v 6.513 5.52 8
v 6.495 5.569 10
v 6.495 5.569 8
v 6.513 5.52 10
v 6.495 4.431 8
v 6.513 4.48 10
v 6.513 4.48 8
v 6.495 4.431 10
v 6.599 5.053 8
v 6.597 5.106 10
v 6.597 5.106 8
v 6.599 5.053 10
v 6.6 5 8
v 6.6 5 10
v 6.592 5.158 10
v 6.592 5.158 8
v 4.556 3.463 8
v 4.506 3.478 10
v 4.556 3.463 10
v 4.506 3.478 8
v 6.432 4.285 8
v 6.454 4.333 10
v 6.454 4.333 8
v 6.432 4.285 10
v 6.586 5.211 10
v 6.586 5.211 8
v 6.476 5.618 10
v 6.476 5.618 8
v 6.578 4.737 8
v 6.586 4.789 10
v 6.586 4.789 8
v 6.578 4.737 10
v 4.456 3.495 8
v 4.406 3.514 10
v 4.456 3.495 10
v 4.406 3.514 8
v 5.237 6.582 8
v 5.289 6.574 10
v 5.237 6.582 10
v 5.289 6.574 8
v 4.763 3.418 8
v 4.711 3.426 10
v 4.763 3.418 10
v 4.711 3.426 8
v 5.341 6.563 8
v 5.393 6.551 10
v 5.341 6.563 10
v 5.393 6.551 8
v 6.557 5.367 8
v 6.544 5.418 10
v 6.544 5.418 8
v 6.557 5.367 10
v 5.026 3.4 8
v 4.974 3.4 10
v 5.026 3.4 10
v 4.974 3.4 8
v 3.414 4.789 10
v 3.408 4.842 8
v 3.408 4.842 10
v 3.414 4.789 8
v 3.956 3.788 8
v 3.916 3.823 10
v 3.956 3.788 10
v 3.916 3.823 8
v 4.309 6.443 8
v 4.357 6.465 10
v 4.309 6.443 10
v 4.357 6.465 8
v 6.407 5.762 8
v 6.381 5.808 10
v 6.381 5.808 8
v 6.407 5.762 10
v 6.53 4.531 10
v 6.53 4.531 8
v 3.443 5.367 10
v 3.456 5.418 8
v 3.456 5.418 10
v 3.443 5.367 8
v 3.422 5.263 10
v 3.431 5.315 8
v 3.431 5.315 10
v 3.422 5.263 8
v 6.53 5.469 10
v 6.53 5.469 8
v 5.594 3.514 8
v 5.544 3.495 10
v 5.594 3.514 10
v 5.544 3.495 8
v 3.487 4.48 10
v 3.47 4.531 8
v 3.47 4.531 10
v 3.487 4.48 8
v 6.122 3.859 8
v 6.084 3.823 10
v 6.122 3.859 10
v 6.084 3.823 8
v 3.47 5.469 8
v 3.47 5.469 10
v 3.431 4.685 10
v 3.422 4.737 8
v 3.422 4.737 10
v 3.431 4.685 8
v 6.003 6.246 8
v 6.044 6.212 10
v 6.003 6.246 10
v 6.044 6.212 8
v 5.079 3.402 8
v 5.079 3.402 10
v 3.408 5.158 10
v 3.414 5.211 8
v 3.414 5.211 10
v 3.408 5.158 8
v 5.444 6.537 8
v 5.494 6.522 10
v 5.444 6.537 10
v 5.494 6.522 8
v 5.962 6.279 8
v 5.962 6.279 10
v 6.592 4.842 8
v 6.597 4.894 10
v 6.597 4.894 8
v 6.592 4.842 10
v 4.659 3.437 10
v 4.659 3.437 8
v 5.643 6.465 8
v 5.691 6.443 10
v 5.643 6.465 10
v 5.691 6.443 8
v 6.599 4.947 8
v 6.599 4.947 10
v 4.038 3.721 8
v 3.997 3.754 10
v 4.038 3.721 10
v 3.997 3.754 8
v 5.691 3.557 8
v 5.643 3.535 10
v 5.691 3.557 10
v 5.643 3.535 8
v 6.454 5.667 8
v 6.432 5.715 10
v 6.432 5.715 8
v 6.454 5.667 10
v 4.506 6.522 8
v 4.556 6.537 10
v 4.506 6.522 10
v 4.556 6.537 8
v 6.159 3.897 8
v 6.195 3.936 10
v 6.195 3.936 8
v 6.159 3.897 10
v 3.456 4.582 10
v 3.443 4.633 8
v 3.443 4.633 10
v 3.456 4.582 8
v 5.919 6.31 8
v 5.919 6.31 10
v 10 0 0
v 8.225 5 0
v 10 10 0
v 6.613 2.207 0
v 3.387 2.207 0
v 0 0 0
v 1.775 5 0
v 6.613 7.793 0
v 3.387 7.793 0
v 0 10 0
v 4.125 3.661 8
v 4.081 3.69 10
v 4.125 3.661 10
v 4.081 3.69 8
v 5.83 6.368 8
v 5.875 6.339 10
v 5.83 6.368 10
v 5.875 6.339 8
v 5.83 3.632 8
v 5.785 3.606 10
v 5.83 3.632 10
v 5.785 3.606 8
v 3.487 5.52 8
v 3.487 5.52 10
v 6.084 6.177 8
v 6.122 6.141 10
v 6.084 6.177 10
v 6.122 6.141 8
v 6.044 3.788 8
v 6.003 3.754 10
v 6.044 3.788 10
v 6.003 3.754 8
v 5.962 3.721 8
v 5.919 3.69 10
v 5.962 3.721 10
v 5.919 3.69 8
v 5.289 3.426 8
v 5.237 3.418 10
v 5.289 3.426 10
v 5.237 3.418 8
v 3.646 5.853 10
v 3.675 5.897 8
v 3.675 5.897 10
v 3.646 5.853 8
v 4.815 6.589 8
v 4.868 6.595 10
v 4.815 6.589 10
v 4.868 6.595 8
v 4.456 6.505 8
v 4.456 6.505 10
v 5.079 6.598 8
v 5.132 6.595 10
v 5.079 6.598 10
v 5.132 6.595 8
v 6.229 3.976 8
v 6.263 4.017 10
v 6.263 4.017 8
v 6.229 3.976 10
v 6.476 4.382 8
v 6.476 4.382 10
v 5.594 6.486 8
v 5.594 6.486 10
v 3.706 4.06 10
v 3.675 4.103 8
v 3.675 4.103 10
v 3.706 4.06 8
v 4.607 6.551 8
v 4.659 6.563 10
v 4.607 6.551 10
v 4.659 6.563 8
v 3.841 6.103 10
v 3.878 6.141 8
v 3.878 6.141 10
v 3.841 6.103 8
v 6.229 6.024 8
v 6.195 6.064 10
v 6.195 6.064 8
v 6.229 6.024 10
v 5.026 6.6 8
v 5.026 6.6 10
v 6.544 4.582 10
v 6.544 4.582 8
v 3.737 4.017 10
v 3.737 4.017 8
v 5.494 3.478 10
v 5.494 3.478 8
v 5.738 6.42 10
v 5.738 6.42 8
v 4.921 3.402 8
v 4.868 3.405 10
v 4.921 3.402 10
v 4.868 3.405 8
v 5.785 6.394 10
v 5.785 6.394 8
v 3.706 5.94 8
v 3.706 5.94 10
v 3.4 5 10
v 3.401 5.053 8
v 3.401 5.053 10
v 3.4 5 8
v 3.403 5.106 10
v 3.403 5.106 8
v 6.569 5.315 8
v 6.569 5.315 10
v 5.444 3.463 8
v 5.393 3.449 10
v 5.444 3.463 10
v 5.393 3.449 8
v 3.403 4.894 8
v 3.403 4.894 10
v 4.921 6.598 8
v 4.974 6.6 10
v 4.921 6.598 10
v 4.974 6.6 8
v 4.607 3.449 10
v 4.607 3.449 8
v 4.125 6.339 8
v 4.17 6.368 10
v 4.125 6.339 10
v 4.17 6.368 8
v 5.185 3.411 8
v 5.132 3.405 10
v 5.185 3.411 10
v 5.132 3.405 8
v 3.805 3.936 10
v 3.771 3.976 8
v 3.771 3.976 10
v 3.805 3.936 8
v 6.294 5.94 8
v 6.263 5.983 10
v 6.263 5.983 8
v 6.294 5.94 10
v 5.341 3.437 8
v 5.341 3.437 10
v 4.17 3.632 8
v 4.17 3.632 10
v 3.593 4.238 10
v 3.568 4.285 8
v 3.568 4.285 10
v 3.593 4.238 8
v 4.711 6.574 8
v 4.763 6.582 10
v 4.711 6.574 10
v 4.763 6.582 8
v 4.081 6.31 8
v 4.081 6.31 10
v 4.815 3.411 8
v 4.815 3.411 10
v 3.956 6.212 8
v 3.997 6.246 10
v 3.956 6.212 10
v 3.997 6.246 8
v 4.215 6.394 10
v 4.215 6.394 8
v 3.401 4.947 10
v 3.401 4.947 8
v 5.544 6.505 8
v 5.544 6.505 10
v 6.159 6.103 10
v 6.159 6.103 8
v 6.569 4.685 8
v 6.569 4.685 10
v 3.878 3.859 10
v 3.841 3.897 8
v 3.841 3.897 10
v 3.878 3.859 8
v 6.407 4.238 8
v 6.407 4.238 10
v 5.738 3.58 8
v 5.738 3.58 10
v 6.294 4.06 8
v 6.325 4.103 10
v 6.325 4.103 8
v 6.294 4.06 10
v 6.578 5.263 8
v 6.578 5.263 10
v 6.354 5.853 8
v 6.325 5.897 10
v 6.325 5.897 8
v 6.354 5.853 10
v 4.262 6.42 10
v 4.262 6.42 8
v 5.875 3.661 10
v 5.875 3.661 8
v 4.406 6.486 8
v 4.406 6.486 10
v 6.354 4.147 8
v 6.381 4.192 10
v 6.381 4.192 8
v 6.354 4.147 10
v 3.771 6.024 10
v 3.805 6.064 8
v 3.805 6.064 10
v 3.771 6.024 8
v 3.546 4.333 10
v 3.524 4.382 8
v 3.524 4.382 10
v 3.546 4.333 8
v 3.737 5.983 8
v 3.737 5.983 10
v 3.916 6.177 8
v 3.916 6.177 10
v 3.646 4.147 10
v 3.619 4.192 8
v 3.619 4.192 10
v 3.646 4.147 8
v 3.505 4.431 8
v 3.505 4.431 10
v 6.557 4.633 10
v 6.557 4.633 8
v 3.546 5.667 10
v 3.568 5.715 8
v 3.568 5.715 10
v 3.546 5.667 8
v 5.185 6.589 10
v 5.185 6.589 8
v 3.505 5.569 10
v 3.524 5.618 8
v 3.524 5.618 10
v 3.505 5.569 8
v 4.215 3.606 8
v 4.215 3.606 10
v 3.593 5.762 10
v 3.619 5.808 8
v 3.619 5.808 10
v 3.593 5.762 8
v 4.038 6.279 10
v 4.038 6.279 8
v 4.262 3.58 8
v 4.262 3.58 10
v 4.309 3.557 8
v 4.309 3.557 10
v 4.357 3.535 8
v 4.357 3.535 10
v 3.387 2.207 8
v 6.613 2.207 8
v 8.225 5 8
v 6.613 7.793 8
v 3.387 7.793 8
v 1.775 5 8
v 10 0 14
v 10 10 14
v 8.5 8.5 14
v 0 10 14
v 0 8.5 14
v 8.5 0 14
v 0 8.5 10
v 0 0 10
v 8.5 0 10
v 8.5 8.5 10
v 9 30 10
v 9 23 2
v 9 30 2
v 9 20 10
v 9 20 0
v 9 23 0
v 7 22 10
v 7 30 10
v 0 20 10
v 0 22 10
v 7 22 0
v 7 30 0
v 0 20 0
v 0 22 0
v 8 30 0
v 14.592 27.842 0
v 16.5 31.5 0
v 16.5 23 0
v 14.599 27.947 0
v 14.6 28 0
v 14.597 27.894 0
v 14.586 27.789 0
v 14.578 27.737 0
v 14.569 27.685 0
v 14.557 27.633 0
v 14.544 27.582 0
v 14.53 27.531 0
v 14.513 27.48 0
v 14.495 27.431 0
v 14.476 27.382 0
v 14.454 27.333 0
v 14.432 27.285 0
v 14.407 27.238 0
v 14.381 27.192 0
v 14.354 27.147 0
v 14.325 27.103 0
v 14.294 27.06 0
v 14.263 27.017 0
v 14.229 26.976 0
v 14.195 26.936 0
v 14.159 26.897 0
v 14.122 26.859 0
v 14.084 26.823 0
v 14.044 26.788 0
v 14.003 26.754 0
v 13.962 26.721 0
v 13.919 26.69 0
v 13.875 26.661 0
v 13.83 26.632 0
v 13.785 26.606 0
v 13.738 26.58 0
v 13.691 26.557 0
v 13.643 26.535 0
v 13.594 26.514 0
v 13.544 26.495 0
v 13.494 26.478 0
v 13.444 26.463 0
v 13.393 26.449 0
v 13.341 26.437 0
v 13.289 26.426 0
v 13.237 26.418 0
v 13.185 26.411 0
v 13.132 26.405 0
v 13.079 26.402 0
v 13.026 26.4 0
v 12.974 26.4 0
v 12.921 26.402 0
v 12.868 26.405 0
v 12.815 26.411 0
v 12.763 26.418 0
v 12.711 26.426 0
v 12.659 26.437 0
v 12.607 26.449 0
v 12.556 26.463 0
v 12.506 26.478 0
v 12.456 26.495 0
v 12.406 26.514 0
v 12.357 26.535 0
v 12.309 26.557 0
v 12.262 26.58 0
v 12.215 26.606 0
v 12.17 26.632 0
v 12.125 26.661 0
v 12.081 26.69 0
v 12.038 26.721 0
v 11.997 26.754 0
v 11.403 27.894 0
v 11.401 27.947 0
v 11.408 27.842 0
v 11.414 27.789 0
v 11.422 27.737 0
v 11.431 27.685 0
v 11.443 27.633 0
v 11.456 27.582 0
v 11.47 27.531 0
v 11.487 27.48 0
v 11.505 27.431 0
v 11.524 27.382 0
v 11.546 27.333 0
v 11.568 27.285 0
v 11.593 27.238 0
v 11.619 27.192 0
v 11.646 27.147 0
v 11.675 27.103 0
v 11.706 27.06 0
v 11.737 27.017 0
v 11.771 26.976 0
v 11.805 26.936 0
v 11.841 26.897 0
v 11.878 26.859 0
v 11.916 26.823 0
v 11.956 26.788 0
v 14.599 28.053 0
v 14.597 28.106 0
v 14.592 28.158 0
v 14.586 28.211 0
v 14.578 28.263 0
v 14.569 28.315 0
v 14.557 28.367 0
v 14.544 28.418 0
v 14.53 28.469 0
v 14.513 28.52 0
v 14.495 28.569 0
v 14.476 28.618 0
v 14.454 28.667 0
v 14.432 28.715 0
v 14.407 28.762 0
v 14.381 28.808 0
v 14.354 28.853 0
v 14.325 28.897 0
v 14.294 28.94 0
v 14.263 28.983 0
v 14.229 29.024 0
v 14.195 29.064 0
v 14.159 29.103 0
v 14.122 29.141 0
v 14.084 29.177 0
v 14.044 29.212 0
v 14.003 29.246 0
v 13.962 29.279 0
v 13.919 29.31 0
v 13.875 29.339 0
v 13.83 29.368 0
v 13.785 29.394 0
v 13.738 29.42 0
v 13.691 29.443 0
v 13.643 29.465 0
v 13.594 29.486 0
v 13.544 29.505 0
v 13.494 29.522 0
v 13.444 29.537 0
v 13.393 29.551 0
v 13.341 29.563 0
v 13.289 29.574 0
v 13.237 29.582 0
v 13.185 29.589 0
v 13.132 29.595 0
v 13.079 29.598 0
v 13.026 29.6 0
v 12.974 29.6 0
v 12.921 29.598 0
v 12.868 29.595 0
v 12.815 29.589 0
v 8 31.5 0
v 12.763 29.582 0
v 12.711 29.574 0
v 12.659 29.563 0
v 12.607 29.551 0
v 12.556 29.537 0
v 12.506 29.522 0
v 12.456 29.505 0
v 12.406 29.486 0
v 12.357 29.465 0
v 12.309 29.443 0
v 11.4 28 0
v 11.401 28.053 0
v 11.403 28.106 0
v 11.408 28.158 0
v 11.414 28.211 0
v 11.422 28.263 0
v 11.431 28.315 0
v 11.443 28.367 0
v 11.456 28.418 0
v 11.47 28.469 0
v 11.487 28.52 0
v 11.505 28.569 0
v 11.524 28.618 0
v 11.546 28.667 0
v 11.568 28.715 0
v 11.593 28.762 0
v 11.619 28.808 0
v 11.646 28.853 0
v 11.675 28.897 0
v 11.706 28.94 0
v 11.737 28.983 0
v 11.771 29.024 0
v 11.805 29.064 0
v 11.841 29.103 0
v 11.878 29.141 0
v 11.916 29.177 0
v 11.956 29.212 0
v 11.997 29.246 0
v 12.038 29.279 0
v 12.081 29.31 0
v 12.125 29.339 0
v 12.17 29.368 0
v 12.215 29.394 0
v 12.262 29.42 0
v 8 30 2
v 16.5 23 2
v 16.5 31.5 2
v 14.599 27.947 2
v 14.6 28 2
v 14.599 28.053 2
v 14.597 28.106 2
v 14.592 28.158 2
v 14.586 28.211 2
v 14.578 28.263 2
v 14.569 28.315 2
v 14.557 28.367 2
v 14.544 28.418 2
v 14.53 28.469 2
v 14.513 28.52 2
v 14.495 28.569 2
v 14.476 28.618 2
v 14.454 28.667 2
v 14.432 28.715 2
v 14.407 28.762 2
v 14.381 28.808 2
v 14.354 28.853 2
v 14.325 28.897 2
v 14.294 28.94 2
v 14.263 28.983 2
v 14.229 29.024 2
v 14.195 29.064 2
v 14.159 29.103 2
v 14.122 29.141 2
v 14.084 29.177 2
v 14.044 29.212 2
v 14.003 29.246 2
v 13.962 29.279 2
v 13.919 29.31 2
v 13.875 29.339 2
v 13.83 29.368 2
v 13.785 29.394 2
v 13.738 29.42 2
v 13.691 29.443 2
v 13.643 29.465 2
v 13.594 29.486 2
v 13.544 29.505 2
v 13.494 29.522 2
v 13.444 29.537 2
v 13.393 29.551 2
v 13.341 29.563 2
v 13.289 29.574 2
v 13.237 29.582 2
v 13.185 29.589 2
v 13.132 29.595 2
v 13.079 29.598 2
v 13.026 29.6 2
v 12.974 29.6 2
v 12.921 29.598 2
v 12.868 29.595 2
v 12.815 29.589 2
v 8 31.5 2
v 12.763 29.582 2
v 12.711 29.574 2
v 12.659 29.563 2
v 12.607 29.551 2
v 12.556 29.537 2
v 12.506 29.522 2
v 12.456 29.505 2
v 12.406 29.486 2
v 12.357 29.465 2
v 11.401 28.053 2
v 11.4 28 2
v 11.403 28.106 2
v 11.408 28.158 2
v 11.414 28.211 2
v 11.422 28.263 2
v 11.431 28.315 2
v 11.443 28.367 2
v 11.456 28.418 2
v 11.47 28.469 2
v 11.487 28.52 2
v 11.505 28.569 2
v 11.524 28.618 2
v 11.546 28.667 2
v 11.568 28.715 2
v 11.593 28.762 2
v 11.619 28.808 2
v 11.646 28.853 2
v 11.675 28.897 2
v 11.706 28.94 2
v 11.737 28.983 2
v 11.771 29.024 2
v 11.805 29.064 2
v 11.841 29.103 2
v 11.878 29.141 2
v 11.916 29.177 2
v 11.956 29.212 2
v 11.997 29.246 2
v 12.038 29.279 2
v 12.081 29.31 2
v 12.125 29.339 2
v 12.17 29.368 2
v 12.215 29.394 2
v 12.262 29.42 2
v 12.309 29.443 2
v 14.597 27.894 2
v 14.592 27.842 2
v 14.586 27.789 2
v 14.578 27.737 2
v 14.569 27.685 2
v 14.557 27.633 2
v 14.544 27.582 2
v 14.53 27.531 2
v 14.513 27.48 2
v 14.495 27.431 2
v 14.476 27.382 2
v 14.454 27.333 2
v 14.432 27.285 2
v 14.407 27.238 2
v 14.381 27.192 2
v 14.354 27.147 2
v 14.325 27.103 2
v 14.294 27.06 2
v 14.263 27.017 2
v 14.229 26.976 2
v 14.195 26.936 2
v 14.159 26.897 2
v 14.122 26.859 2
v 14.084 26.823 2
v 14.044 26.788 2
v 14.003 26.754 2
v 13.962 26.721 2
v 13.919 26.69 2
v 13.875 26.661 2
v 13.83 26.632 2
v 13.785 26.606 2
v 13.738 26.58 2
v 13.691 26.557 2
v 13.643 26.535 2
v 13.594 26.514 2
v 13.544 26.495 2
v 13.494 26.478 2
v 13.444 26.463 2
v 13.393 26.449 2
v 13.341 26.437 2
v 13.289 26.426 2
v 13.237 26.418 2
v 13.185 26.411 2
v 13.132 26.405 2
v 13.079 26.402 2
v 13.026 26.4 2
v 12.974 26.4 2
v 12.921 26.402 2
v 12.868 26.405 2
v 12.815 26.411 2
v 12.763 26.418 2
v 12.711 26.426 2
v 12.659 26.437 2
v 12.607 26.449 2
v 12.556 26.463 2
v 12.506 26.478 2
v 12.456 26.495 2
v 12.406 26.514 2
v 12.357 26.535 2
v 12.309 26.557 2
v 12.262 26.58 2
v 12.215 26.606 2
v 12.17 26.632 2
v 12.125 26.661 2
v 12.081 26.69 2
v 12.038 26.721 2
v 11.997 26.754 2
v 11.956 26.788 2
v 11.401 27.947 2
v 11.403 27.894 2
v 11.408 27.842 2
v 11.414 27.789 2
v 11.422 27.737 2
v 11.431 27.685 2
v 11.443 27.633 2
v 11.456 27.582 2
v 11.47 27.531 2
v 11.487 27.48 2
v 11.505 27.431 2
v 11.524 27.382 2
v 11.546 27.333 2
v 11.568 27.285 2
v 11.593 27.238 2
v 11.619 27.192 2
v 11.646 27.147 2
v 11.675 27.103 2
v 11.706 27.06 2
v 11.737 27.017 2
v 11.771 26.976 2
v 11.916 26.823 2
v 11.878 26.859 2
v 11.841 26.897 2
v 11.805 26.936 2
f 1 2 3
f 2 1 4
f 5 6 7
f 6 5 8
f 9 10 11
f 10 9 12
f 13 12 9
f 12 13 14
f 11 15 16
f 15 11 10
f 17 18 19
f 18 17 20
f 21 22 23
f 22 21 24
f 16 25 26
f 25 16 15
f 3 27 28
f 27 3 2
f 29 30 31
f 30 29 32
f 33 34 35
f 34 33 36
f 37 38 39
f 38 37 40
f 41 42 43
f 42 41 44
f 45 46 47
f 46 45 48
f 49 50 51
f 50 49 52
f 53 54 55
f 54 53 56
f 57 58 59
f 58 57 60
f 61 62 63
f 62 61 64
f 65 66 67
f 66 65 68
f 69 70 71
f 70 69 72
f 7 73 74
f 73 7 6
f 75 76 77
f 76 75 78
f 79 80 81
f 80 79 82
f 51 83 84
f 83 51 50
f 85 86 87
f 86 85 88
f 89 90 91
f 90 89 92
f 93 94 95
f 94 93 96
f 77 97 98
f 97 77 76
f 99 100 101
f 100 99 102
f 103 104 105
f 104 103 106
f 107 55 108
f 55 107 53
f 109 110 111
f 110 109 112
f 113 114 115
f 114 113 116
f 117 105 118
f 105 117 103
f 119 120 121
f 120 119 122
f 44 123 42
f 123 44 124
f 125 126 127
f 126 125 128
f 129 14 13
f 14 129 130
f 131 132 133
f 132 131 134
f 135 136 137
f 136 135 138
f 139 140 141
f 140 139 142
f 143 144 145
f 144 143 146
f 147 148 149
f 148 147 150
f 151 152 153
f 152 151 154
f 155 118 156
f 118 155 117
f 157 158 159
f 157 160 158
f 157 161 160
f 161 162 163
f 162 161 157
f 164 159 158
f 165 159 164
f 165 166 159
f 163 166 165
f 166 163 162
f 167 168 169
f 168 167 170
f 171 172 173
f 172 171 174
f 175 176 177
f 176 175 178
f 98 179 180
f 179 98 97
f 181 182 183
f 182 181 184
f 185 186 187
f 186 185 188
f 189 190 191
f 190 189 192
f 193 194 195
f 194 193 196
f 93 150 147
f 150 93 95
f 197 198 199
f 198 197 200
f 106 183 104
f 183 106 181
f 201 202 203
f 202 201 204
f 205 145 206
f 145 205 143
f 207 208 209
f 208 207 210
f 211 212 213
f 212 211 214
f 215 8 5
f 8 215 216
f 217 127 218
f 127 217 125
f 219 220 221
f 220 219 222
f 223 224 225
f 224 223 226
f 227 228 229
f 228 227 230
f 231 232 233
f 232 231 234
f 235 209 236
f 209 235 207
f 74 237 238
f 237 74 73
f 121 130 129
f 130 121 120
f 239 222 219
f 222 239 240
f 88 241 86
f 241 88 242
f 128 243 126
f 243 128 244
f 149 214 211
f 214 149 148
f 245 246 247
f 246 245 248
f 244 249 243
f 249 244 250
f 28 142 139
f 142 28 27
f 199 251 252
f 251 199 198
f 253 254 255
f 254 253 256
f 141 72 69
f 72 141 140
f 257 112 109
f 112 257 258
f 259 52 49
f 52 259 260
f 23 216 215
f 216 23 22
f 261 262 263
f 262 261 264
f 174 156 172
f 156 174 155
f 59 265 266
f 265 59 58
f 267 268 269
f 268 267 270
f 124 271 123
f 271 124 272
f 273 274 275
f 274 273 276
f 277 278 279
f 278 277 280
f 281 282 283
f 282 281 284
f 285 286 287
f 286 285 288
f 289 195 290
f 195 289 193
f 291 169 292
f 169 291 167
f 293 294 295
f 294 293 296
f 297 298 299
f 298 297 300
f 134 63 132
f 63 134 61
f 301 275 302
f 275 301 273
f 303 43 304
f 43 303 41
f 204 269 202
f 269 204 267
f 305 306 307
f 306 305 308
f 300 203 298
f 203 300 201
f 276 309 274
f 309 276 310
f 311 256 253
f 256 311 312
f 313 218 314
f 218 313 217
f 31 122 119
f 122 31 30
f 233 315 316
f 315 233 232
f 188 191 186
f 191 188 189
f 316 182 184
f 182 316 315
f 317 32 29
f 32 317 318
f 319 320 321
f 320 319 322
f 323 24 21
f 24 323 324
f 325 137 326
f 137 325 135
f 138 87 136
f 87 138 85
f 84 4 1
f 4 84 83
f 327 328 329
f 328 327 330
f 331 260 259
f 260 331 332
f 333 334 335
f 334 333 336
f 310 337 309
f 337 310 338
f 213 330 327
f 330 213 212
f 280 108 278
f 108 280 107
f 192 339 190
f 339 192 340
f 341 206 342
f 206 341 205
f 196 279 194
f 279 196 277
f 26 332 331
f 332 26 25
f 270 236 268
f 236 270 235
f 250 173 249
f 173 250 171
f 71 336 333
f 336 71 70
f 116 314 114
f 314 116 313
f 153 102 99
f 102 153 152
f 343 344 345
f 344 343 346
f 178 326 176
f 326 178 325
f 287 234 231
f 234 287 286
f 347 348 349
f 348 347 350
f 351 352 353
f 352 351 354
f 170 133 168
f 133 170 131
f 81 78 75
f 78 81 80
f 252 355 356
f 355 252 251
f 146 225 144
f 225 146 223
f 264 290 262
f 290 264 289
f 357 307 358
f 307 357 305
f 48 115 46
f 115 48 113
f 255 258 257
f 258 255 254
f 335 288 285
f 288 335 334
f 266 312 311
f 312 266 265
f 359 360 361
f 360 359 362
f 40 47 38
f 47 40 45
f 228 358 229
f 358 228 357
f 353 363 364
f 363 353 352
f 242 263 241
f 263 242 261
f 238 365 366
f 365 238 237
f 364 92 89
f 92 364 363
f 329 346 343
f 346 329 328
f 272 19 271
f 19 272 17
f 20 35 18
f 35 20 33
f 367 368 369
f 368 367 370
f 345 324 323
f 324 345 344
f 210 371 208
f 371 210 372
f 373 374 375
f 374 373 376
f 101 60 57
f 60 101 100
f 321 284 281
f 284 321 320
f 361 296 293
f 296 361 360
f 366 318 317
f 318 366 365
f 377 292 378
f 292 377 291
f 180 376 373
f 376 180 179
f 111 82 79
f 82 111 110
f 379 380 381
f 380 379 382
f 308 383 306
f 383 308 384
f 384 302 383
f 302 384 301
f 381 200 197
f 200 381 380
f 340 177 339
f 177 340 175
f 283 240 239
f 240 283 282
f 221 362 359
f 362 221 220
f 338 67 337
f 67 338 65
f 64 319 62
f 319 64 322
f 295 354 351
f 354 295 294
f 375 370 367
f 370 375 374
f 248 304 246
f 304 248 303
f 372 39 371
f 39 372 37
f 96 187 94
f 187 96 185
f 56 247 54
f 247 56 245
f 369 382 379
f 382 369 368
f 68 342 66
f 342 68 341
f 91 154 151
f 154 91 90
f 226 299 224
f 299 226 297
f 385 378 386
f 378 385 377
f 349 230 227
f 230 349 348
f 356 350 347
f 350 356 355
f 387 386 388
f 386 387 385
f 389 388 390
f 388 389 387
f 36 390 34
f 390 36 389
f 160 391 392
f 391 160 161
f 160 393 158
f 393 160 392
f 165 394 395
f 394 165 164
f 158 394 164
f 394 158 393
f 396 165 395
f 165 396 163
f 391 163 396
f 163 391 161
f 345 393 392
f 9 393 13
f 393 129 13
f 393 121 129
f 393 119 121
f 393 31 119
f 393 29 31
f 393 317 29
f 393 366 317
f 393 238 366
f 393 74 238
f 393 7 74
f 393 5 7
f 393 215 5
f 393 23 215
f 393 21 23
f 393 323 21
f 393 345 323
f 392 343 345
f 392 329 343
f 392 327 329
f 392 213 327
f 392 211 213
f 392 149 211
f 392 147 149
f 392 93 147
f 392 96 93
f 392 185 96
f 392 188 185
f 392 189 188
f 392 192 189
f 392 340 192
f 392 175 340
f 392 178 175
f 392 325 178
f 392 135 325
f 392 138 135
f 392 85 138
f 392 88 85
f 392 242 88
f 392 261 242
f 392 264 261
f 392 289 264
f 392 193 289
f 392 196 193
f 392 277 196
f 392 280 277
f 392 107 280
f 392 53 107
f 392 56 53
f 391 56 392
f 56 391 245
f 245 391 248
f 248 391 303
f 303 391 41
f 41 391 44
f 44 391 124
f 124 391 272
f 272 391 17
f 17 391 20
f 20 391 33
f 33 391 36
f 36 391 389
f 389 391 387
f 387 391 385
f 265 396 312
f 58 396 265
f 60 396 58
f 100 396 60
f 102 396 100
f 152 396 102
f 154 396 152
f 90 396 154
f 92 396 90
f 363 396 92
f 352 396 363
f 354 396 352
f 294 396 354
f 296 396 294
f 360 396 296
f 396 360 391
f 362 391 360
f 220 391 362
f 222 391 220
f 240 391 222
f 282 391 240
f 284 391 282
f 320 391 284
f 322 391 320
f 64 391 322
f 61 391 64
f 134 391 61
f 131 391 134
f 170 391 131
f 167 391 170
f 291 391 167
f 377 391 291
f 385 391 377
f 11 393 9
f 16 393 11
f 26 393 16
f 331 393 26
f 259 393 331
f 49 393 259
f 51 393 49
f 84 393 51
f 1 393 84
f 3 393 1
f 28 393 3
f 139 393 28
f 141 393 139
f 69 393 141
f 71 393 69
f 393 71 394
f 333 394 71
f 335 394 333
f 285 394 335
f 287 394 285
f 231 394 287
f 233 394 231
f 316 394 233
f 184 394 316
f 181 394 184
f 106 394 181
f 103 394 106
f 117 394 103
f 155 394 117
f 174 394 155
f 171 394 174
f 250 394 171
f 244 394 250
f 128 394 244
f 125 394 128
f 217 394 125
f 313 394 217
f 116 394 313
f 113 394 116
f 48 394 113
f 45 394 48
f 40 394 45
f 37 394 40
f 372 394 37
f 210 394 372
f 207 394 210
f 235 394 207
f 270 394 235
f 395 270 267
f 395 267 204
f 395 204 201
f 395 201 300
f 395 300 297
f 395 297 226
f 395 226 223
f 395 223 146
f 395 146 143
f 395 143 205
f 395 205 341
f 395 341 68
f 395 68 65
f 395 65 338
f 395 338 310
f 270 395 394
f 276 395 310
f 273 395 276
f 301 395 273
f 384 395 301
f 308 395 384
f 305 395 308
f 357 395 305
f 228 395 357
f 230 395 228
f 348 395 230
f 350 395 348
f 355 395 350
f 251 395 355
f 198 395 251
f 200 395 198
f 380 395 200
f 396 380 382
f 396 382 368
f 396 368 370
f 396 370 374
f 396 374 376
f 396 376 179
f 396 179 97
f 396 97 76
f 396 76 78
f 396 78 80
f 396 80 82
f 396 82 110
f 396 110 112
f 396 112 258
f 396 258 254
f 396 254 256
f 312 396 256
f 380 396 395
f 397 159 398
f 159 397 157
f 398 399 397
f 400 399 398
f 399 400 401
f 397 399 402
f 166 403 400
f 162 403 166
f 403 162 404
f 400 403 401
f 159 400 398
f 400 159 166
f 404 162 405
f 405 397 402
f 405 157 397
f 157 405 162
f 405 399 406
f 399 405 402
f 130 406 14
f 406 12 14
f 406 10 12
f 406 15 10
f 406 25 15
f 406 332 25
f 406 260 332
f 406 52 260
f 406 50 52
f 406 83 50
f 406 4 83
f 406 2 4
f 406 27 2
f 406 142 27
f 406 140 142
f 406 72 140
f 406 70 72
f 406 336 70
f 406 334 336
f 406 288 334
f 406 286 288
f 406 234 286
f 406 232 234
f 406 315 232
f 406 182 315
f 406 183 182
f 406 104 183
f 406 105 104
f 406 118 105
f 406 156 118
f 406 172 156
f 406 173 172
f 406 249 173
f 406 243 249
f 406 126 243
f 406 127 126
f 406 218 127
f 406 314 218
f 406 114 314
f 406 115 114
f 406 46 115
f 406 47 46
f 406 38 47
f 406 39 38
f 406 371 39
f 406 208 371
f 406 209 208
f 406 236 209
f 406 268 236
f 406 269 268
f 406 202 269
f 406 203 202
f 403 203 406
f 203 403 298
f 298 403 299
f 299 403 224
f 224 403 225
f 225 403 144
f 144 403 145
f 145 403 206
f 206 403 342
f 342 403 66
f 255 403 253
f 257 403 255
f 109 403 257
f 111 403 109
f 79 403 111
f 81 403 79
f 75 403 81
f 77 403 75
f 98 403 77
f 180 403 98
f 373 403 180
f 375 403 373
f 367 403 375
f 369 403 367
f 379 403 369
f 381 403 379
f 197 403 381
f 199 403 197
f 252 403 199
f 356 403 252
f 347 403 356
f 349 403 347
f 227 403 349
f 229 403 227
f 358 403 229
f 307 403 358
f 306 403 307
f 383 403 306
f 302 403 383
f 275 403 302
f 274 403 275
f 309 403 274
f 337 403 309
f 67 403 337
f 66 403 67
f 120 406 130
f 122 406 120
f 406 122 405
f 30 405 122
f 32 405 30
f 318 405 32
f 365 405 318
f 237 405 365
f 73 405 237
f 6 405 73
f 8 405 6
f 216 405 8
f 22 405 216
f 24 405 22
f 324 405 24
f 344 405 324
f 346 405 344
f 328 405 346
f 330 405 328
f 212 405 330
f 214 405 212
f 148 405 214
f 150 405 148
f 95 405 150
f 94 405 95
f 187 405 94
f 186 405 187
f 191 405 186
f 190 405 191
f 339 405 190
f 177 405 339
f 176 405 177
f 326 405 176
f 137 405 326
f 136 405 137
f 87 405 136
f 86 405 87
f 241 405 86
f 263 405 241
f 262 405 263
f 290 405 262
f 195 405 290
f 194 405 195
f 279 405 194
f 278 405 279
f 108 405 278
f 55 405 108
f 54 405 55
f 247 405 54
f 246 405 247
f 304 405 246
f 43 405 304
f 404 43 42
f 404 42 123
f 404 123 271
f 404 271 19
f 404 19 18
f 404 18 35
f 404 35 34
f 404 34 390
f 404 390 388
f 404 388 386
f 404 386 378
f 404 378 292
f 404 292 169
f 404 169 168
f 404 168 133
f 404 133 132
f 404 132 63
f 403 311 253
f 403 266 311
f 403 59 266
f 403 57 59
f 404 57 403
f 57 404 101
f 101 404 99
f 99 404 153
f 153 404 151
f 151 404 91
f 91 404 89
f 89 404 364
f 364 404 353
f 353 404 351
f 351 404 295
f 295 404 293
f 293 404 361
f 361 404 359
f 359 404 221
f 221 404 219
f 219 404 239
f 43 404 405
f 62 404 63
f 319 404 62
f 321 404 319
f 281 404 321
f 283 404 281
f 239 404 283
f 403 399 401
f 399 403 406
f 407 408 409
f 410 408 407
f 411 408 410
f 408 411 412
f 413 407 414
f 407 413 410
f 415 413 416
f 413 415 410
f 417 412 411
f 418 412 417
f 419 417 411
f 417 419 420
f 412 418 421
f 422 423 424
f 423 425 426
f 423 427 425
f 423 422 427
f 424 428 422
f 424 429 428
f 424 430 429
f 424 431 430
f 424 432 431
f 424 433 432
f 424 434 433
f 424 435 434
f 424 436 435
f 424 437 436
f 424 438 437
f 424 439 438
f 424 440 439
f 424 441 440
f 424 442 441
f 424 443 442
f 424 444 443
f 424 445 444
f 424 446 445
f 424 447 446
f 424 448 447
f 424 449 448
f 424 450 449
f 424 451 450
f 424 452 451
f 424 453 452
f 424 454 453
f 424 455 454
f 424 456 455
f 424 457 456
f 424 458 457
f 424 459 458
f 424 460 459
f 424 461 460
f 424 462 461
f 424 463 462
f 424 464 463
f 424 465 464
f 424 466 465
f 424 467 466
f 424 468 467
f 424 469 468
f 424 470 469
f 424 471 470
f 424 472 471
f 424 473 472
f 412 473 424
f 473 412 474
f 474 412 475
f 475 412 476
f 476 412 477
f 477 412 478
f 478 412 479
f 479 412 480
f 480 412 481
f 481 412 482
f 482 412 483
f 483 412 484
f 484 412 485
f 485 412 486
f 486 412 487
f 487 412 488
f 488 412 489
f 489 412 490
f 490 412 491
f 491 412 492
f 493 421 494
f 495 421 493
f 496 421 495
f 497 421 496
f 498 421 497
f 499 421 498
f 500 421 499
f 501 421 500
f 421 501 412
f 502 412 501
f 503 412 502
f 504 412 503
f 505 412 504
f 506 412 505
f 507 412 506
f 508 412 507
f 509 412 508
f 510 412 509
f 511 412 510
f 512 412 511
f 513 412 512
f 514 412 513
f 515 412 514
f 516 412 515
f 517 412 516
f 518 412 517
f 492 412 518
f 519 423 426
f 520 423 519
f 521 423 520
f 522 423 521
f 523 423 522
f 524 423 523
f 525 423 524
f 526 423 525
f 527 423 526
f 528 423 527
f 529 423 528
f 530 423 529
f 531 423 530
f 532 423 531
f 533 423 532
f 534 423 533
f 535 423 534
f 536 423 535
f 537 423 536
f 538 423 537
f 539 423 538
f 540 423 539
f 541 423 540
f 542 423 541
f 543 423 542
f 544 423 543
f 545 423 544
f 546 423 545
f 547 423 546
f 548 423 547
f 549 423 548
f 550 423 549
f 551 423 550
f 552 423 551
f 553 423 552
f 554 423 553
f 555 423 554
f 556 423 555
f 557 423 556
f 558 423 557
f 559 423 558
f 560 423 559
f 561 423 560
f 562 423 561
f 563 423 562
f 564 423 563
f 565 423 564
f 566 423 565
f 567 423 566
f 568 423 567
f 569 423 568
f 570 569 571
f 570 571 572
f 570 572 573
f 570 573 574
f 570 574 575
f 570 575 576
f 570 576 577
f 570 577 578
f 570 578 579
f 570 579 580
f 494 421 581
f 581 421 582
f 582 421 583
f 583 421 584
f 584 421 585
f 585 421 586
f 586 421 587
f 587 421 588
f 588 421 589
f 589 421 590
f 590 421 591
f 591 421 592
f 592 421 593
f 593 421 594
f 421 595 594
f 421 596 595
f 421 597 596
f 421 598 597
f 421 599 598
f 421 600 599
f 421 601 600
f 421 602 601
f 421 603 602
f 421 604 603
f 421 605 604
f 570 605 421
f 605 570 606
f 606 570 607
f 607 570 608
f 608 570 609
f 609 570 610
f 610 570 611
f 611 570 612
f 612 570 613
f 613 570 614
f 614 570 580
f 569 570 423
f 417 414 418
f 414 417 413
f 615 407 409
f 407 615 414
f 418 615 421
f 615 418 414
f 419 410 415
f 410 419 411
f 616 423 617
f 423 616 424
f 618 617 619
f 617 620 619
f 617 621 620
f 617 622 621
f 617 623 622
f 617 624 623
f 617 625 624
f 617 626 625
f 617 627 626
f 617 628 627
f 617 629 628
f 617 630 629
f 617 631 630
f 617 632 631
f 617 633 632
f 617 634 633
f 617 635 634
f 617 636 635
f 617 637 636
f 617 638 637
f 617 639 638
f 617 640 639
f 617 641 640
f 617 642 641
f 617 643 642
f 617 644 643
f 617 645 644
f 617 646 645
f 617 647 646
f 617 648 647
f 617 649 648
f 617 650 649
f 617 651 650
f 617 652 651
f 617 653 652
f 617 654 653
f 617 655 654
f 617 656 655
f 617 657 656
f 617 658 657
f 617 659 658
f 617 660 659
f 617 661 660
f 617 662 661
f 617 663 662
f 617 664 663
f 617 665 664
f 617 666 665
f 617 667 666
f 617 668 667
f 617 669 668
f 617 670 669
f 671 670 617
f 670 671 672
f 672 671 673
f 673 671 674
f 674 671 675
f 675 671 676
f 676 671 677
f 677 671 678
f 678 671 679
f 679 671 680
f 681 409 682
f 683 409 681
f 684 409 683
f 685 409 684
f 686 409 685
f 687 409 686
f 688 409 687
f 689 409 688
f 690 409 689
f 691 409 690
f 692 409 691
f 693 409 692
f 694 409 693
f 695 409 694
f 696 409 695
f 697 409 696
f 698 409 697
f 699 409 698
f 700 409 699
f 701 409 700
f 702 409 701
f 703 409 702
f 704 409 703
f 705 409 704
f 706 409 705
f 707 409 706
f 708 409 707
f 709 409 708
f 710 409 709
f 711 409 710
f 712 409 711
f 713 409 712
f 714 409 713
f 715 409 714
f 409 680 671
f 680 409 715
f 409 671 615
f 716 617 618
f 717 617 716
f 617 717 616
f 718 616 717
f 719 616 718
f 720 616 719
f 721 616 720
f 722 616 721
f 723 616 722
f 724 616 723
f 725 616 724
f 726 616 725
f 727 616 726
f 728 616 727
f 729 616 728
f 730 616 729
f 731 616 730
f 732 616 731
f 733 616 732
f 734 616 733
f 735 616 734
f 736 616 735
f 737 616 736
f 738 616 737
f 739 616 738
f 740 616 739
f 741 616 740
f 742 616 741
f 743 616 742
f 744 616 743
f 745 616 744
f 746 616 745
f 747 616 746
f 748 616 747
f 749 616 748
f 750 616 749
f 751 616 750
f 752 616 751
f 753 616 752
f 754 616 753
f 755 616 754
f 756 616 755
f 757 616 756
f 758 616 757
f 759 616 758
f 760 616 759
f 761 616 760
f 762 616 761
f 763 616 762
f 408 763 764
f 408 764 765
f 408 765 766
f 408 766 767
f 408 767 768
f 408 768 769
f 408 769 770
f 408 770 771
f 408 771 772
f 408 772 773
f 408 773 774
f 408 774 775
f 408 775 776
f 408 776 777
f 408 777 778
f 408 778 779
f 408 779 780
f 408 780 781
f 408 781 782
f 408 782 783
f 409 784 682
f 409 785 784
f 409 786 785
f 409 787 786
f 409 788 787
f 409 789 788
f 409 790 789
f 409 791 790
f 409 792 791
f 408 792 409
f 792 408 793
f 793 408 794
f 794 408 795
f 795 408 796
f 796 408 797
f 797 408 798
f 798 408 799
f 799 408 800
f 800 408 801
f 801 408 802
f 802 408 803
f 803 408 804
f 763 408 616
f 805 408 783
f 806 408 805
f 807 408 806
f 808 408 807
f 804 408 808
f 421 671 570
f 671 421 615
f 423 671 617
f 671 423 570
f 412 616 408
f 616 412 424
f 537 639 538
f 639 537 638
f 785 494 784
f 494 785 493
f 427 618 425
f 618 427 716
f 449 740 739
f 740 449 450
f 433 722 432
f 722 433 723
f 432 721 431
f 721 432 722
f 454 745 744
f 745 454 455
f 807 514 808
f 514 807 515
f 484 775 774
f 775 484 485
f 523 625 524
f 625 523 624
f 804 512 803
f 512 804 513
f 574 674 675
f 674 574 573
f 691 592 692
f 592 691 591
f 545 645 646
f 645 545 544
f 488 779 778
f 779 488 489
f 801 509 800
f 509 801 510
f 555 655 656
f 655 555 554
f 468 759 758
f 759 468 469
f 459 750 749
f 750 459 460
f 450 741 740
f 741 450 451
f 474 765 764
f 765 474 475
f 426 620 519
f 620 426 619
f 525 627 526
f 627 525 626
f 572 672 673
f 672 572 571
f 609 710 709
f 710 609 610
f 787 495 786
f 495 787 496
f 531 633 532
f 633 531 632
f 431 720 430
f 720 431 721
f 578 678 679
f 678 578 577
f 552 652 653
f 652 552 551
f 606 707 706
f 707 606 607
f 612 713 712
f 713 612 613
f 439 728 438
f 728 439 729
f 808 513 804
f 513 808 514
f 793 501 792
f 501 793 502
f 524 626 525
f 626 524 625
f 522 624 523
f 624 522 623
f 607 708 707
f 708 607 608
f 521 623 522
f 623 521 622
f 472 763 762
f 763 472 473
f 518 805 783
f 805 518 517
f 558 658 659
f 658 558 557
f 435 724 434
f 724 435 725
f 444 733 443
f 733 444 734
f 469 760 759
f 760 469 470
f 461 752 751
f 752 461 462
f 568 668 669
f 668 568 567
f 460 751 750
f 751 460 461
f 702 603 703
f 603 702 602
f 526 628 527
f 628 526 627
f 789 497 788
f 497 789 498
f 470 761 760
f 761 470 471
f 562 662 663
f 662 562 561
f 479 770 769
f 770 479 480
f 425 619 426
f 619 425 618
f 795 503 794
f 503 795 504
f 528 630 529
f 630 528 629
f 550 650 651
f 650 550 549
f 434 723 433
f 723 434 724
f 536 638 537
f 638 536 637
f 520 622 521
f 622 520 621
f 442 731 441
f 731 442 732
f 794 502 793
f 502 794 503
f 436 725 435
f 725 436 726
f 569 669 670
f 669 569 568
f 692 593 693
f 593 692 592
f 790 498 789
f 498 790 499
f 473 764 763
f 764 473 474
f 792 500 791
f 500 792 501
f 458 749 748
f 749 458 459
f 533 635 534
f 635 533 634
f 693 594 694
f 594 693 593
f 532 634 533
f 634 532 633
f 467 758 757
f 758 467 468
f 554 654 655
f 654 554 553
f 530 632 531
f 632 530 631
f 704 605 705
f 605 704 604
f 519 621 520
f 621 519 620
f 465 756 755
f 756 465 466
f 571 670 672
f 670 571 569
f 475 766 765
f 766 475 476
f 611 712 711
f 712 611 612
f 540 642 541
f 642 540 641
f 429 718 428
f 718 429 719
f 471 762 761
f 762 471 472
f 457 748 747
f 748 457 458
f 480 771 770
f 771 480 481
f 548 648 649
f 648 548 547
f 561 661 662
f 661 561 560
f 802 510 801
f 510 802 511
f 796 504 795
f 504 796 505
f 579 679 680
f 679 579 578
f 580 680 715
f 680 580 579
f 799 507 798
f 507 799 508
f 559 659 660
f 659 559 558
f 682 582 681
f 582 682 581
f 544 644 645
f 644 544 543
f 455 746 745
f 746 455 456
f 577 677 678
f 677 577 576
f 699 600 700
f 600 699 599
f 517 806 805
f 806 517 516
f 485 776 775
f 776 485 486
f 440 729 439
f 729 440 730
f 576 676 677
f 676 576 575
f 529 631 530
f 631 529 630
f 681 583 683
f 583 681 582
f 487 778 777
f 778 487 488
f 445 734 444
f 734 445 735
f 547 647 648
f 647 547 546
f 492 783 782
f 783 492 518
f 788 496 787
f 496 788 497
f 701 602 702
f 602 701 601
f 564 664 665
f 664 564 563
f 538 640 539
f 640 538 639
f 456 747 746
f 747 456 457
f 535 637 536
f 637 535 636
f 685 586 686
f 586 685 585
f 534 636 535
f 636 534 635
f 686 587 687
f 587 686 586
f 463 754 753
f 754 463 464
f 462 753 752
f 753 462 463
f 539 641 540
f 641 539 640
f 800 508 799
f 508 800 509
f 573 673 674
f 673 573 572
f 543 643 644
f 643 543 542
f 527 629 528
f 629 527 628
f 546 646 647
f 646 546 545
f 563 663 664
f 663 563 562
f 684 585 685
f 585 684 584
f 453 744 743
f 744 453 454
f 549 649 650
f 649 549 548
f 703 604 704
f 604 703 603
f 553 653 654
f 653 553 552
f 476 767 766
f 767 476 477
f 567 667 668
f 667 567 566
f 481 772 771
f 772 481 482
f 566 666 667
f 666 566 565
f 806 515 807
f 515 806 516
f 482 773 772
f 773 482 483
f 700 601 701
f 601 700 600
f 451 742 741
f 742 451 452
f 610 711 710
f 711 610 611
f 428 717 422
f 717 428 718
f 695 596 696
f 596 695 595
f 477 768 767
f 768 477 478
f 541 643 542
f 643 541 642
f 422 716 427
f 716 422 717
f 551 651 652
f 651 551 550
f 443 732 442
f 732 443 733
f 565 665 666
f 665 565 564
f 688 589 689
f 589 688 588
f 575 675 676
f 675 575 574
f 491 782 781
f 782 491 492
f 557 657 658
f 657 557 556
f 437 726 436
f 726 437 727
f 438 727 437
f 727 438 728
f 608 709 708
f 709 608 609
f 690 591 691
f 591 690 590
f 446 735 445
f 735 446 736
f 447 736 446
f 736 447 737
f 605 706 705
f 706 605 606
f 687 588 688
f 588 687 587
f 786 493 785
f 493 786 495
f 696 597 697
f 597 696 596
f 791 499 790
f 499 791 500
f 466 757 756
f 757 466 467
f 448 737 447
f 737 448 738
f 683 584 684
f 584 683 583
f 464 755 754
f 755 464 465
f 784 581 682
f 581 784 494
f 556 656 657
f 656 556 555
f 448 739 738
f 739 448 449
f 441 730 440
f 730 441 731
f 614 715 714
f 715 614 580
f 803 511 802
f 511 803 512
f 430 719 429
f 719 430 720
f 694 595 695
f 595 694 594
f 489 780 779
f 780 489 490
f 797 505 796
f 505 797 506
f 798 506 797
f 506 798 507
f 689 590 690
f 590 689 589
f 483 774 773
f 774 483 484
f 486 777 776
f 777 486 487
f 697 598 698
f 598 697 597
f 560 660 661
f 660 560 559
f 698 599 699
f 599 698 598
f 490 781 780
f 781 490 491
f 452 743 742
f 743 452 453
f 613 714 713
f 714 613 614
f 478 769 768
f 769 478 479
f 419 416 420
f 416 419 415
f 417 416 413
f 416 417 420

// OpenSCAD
use <hggh/usb_c_breakout_case_holder.scad>
include <BOSL/constants.scad>
use <BOSL/metric_screws.scad>

$fn=190;

module mutterr() {
    difference() {
        cube([10, 10, 14]);
        translate([5, 5, 0]) {
            cylinder(d=3.2, h=20);
            cylinder(r = 5.5 / 2 / cos(180 / 6) + 0.05, h=8, $fn=6);
        }
        translate([0, 0, 10]) cube([8.5, 8.5, 20]);
    }
}


mutterr();
translate([0, 20, 0]) holderr();



module holderr () {    
    cube([7, 2, 10]);
    
    translate([7, 3, 0]) {
        difference() {
            union() {
                translate([0, -3, 0]) cube([2, 10, 10]);
                translate([1, 0, 0])
                cube([8.5, 8.5, 2]);
            }
            translate([5+1, 5, -1]) cylinder(d=3.2, h=10);
            //translate([0, 1, -1]) cube([7, 7, 1.8]);
        }
    }
}
